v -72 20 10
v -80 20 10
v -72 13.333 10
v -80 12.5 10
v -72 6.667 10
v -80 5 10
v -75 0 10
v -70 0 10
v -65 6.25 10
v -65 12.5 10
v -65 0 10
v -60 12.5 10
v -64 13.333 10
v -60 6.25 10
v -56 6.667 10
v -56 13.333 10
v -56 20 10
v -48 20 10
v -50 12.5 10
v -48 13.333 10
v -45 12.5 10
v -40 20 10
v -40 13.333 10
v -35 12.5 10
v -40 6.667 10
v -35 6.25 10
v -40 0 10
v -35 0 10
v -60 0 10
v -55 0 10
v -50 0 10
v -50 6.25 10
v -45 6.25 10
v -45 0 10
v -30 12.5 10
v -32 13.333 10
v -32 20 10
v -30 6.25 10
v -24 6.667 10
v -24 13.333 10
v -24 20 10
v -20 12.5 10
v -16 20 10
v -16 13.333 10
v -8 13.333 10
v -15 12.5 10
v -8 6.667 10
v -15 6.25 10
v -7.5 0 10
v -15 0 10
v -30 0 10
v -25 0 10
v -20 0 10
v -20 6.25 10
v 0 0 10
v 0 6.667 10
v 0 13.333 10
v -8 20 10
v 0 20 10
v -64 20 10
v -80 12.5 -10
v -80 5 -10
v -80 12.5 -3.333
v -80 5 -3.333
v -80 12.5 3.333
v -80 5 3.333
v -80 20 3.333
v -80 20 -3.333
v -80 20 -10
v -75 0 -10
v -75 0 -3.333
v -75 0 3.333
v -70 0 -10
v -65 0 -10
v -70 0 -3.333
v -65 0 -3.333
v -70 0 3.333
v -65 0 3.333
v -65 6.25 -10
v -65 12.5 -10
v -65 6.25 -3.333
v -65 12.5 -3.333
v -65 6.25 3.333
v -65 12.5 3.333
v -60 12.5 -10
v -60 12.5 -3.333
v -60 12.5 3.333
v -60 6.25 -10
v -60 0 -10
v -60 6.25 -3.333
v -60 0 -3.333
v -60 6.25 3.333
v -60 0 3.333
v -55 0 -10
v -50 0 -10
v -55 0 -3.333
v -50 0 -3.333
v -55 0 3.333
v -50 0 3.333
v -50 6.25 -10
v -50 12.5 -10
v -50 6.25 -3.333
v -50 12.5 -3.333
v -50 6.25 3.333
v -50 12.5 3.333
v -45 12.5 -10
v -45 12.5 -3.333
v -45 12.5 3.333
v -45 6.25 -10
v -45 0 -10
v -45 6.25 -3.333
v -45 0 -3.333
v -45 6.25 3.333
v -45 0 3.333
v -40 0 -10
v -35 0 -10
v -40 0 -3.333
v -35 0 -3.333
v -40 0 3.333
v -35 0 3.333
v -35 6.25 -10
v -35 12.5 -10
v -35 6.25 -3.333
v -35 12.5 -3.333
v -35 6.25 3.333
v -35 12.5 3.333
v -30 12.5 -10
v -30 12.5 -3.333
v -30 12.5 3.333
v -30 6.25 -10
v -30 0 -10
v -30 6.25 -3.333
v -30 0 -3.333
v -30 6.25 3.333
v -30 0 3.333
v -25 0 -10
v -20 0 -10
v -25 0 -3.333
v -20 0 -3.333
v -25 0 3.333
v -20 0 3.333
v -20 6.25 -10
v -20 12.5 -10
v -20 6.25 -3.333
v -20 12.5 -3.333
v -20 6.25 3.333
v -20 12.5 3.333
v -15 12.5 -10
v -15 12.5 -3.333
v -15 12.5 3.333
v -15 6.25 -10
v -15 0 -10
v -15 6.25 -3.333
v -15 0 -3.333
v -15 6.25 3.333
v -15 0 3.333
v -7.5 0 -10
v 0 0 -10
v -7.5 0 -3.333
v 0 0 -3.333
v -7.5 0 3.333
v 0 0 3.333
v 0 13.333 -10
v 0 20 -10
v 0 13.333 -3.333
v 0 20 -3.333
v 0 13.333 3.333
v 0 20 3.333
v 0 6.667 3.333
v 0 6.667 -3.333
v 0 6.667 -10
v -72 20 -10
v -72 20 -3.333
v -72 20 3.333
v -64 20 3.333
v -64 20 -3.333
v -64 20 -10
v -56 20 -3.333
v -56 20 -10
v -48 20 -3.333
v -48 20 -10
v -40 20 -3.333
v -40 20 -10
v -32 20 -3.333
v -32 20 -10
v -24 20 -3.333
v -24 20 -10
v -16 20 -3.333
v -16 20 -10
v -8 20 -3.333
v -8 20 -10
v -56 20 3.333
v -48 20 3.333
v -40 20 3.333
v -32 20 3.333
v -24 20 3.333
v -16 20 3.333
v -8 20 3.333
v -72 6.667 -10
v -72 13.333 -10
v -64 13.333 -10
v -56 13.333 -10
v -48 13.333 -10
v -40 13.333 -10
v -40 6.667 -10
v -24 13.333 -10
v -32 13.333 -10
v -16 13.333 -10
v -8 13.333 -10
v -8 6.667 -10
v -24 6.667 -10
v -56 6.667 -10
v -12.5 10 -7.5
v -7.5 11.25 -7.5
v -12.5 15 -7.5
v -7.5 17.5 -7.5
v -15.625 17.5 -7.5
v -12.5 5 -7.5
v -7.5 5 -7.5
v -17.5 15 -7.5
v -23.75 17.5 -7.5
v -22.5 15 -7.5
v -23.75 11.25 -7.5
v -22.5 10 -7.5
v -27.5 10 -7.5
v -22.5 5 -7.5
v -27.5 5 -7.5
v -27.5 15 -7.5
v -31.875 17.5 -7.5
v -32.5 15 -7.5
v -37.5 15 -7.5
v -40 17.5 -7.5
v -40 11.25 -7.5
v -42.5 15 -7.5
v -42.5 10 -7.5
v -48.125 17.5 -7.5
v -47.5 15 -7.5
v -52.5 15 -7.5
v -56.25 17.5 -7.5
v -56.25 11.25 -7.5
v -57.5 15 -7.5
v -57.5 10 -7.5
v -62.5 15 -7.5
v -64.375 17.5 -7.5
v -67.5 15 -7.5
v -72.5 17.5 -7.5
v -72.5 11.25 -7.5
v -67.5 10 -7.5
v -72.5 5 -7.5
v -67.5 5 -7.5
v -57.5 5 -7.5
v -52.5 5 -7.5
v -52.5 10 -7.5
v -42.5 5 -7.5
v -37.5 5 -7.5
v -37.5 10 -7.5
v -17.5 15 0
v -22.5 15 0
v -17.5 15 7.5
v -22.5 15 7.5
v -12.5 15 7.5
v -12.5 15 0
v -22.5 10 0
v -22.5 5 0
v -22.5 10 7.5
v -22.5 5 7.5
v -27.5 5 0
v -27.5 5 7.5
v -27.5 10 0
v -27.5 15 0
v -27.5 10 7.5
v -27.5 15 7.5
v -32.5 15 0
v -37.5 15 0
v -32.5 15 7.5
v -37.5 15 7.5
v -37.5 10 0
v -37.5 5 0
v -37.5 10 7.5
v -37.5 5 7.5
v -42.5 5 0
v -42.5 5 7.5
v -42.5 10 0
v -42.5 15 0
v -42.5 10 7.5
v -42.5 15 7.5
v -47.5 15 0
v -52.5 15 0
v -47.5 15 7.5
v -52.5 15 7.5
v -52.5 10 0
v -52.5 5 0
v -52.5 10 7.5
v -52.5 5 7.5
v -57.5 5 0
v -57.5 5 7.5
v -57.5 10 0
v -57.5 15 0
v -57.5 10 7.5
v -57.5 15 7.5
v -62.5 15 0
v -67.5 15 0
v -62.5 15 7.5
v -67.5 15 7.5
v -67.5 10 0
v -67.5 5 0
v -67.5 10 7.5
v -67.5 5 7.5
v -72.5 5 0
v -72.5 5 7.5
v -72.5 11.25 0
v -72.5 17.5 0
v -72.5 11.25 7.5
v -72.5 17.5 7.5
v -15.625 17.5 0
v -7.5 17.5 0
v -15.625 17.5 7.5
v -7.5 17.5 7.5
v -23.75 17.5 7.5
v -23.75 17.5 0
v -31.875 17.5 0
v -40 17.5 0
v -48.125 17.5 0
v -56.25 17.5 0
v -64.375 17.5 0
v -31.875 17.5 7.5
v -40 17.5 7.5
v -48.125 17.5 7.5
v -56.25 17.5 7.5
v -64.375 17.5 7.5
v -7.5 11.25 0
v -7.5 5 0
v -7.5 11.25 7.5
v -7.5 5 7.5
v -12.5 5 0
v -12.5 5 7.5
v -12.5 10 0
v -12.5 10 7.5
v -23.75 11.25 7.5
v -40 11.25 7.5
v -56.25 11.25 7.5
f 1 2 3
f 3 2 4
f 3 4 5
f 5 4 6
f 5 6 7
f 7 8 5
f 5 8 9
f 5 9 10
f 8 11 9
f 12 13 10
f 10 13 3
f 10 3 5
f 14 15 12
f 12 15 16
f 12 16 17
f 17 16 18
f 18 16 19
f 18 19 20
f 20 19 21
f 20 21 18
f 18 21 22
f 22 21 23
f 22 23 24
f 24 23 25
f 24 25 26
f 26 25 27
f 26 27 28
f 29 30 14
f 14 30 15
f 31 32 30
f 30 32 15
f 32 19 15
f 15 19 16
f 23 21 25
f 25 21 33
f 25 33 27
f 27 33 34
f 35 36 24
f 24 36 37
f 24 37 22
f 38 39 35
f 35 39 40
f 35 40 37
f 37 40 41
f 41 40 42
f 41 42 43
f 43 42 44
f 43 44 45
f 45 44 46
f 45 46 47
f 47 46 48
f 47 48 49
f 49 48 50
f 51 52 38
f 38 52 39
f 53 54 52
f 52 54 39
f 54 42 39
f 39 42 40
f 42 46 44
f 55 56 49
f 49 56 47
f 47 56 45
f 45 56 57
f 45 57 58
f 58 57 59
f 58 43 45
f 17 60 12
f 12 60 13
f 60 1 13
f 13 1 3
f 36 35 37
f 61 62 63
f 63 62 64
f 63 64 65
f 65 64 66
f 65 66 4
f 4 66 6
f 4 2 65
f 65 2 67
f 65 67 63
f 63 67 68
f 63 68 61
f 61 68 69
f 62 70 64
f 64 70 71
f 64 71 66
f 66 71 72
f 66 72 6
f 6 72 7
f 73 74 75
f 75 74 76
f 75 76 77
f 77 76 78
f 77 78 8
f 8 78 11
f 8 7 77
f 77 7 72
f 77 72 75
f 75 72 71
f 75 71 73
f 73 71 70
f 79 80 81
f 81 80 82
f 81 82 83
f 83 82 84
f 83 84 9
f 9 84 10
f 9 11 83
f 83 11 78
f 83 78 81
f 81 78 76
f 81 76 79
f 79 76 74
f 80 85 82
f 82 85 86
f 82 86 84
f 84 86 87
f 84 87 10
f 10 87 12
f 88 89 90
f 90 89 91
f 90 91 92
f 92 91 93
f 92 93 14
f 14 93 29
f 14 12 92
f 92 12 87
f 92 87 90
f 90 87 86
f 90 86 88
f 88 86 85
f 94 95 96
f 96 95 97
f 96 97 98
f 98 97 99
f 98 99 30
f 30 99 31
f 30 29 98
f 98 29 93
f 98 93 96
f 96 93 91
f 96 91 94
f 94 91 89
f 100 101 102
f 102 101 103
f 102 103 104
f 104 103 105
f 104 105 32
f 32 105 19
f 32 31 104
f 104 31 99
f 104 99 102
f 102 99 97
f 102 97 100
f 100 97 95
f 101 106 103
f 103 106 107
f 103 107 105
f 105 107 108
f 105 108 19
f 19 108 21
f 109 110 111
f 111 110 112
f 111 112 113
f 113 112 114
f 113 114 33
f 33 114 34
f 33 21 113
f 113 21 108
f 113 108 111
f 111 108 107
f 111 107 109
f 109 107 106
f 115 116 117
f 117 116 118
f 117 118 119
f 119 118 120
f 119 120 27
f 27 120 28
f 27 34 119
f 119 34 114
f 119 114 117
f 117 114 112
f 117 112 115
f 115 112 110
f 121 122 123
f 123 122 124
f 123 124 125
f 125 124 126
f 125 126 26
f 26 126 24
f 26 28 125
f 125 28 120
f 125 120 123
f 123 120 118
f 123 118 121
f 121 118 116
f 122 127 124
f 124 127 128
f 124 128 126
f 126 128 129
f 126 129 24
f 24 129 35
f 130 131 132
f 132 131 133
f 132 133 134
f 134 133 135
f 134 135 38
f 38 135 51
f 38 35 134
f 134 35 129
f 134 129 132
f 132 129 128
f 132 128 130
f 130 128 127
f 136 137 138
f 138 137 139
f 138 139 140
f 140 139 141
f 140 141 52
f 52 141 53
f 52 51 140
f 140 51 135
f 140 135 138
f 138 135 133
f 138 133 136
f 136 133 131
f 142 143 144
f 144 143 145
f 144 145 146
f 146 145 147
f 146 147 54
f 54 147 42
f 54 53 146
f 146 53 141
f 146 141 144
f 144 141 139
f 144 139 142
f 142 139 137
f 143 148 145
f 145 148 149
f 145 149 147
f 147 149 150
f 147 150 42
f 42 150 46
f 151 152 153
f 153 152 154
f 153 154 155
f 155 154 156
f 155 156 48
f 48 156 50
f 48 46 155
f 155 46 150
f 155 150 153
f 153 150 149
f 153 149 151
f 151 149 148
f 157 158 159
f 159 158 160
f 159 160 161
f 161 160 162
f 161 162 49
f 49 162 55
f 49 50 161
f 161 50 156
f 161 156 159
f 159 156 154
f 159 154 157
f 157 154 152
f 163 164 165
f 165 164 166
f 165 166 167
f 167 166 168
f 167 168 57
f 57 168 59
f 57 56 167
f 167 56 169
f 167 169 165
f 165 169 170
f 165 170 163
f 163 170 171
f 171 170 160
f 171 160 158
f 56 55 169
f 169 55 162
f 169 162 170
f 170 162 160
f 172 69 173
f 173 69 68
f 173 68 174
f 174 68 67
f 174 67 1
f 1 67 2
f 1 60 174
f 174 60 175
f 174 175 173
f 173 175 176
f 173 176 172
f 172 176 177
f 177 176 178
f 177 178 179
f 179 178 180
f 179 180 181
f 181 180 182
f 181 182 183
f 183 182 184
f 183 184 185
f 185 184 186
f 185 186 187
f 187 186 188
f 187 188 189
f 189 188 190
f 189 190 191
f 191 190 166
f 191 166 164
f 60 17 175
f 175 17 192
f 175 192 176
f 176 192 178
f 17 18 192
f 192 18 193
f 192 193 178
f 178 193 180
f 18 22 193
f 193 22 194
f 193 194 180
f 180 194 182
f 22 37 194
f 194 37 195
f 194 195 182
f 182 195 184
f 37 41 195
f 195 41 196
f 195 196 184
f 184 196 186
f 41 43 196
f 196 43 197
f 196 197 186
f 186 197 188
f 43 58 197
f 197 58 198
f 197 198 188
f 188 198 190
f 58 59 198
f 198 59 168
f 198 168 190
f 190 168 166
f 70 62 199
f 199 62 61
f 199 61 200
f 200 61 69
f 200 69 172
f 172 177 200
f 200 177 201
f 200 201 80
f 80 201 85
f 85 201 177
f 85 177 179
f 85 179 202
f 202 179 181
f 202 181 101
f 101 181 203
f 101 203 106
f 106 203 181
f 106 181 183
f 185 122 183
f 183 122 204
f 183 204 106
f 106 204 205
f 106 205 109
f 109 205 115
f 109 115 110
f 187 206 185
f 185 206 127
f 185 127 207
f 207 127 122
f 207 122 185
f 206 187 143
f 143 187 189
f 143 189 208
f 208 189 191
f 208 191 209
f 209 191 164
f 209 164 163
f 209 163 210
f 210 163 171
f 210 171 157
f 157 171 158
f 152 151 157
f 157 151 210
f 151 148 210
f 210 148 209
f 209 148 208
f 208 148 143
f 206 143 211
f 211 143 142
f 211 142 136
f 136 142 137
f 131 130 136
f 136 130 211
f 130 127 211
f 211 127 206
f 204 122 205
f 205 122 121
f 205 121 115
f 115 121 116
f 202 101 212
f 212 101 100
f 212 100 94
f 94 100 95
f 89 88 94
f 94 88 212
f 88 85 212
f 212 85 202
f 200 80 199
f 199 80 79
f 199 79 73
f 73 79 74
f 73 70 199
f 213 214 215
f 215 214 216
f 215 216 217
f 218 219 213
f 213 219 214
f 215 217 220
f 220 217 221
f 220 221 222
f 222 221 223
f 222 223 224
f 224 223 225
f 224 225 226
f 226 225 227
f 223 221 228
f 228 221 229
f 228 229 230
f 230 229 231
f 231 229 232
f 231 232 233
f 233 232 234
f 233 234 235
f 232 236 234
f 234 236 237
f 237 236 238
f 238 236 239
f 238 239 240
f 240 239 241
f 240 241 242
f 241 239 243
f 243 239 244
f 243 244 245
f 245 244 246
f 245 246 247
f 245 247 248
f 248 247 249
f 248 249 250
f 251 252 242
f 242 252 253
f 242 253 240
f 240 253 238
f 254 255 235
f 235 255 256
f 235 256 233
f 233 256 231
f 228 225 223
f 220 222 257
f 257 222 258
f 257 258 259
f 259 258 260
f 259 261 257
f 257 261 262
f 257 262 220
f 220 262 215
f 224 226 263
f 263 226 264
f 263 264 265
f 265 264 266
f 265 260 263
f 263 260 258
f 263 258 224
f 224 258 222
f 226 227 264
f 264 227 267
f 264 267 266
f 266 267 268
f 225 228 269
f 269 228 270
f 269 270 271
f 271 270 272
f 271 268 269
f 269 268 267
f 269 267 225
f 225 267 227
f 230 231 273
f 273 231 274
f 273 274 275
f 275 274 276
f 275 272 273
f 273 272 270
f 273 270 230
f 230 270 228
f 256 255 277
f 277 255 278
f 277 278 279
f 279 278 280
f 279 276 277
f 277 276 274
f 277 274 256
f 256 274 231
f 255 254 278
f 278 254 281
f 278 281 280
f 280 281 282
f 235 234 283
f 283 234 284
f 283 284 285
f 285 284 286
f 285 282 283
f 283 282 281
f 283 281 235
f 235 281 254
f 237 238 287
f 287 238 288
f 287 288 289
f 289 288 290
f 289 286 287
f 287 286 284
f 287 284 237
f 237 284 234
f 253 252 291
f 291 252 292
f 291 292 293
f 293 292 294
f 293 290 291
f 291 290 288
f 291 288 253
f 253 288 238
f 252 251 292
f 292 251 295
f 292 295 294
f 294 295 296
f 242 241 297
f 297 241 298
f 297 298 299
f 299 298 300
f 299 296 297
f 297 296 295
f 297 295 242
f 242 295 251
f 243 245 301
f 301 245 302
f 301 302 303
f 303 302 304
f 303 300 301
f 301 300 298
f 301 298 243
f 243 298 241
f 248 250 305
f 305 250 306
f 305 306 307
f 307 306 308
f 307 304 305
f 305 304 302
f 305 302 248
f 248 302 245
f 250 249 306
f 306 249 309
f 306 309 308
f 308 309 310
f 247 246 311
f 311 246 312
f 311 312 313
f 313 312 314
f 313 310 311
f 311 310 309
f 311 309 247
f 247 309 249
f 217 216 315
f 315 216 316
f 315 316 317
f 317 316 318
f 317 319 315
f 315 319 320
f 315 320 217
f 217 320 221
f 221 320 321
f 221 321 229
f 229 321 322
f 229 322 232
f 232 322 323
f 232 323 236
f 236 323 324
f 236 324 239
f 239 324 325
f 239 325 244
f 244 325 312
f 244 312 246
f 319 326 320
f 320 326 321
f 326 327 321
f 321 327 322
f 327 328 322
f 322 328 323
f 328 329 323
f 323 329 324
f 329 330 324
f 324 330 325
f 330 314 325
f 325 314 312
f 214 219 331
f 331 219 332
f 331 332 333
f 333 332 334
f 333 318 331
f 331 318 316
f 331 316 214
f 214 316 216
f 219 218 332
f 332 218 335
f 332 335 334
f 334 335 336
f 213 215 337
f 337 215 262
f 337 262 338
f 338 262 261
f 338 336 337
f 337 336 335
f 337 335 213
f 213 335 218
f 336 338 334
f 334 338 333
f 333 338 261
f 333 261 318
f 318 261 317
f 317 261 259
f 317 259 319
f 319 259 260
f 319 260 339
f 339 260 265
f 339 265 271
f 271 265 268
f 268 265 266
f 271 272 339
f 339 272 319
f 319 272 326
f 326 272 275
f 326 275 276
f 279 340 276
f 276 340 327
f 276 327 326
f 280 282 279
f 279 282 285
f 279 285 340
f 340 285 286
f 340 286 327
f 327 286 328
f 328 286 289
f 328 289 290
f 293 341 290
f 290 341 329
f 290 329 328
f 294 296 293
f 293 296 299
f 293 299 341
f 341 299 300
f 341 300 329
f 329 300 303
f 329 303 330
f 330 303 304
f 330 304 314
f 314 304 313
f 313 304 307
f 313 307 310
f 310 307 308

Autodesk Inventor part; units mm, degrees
ref_plane "YZ Plane" through (0, 0, 0) normal (1, 0, 0) x (0, 1, 0)
ref_plane "XZ Plane" through (0, 0, 0) normal (0, 1, 0) x (-1, 0, 0)
ref_plane "XY Plane" through (0, 0, 0) normal (0, 0, 1) x (1, 0, 0)
sketch "スケッチ1" plane through (0, 0, 0) normal (0, 0, 1) x (1, 0, 0)
  line L0 (0, 0) -> (-15, 0)
  line L1 (-15, 0) -> (-15, 20)
  line L2 (-15, 20) -> (0, 20)
  line L3 (0, 20) -> (0, 0)
  line L4 (0, 0) -> (0, 43.6966) construction
  line L5 (-15, 12.5) -> (-20, 12.5)
  line L6 (-20, 12.5) -> (-20, 0)
  line L7 (-30, 0) -> (-30, 12.5)
  line L8 (-30, 0) -> (-20, 0)
  line L9 (23.8812, 0) -> (-169.724, 0) construction
  line L10 (-45, 0) -> (-45, 12.5)
  line L11 (-45, 0) -> (-35, 0)
  line L12 (-35, 12.5) -> (-35, 0)
  line L13 (-30, 12.5) -> (-35, 12.5)
  line L14 (-60, 0) -> (-60, 12.5)
  line L15 (-60, 0) -> (-50, 0)
  line L16 (-50, 12.5) -> (-50, 0)
  line L17 (-45, 12.5) -> (-50, 12.5)
  line L18 (-75, 0) -> (-75, 12.5)
  line L19 (-75, 0) -> (-65, 0)
  line L20 (-65, 12.5) -> (-65, 0)
  line L21 (-60, 12.5) -> (-65, 12.5)
  line L22 (-75, 0) -> (-80, 0)
  line L23 (-80, 0) -> (-80, 20)
  line L24 (-80, 20) -> (-75, 20)
  line L25 (-75, 20) -> (-75, 0)
  line L26 (-75, 20) -> (-15, 20)
  line L27 (-75, 0) -> (-80, 5)
  line L28 (-75, 0) -> (-67.9289, 0) construction
  line L29 (0, 5) -> (-5, 0)
  point P0 (-5, 0)
  dimension "d1" = 15
  dimension "d2" = 20
  dimension "d3" = 5
  dimension "d4" = 10
  dimension "d5" = 7.5
  dimension "d8" = 15
  dimension "d13" = 5
  dimension "d14" = 135
  dimension "d15" = 5
  dimension "d16" = 135
extrude "押し出し1" add sketch "スケッチ1" along normal blind 10 contours L0 L29 L3 | L0 L1 L2 L3 L29 | L5 L6 L8 L7 L13 L12 L11 L10 L17 L16 L15 L14 L21 L20 L19 L18 L25 L26 L1 | L25 L18 L27 L23 L24
sketch "スケッチ2" plane through (0, 0, 0) normal (0, 0, -1) x (-1, 0, 0)
  line L0 (80, 20) -> (80, 5) projected
  line L1 (0, 20) -> (80, 20) projected
  line L2 (0, 0) -> (0, 20) projected
  line L3 (15, 0) -> (0, 0) projected
  line L4 (15, 12.5) -> (15, 0) projected
  line L5 (20, 12.5) -> (15, 12.5) projected
  line L6 (20, 0) -> (20, 12.5) projected
  line L7 (30, 0) -> (20, 0) projected
  line L8 (30, 12.5) -> (30, 0) projected
  line L9 (35, 12.5) -> (30, 12.5) projected
  line L10 (35, 0) -> (35, 12.5) projected
  line L11 (45, 0) -> (35, 0) projected
  line L12 (45, 12.5) -> (45, 0) projected
  line L13 (50, 12.5) -> (45, 12.5) projected
  line L14 (50, 0) -> (50, 12.5) projected
  line L15 (60, 0) -> (50, 0) projected
  line L16 (60, 12.5) -> (60, 0) projected
  line L17 (65, 12.5) -> (60, 12.5) projected
  line L18 (65, 0) -> (65, 12.5) projected
  line L19 (75, 0) -> (65, 0) projected
  line L20 (80, 5) -> (75, 0) projected
  line L21 (40, 31.6917) -> (40, -9.5966) construction
  line L22 (42.5, 5) -> (37.5, 5)
  line L23 (37.5, 5) -> (37.5, 17.5)
  line L24 (37.5, 17.5) -> (42.5, 17.5)
  line L25 (42.5, 17.5) -> (42.5, 5)
  line L26 (42.5, 5) -> (37.5, 17.5) construction
  line L27 (37.5, 5) -> (42.5, 17.5) construction
  line L28 (-3.4293, 0) -> (98.1355, 0) construction
  line L29 (52.5, 5) -> (52.5, 17.5)
  line L30 (57.5, 5) -> (52.5, 5)
  line L31 (57.5, 17.5) -> (57.5, 5)
  line L32 (67.5, 5) -> (67.5, 17.5)
  line L33 (72.5, 5) -> (67.5, 5)
  line L34 (72.5, 17.5) -> (72.5, 5)
  line L35 (22.5, 5) -> (22.5, 17.5)
  line L36 (27.5, 5) -> (22.5, 5)
  line L37 (27.5, 17.5) -> (27.5, 5)
  line L38 (37.5, 5) -> (37.5, 17.5)
  line L39 (42.5, 5) -> (37.5, 5)
  line L40 (42.5, 17.5) -> (42.5, 5)
  line L41 (52.5, 5) -> (52.5, 17.5)
  line L42 (57.5, 5) -> (52.5, 5)
  line L43 (57.5, 17.5) -> (57.5, 5)
  line L44 (7.5, 5) -> (7.5, 17.5)
  line L45 (12.5, 5) -> (7.5, 5)
  line L46 (12.5, 17.5) -> (12.5, 5)
  line L47 (22.5, 5) -> (22.5, 17.5)
  line L48 (27.5, 5) -> (22.5, 5)
  line L49 (27.5, 17.5) -> (27.5, 5)
  line L50 (37.5, 5) -> (37.5, 17.5)
  line L51 (42.5, 5) -> (37.5, 5)
  line L52 (42.5, 17.5) -> (42.5, 5)
  line L53 (72.5, 17.5) -> (7.5, 17.5)
  line L54 (7.5, 15) -> (72.5, 15)
  point P0 (40, 11.25)
  point P1 (12.5, 15)
  point P2 (22.5, 15)
  point P3 (27.5, 15)
  point P4 (37.5, 15)
  point P5 (42.5, 15)
  point P6 (52.5, 15)
  point P7 (57.5, 15)
  point P8 (67.5, 15)
  dimension "d19" = 5
  dimension "d20" = 5
  dimension "d21" = 12.5
  dimension "d22" = 5
  dimension "d25" = 15
  dimension "d28" = 15
  dimension "d31" = 2.5
extrude "押し出し2" cut sketch "スケッチ2" against normal blind 7.5 contours L22 L23 L54 L25 | L54 L23 L24 L25 | L25 L53 L29 L54 | L54 L37 L53 L23 | L54 L31 L30 L29 | L29 L53 L31 L54 | L54 L35 L53 L37 | L37 L36 L35 L54 | L31 L53 L32 L54 | L54 L46 L53 L35 | L54 L34 L33 L32 | L32 L53 L34 L54 | L54 L44 L53 L46 | L46 L45 L44 L54
mirror "ミラー2" about plane through (-40, 10, 0) normal (0, 0, -1) of "押し出し1", "押し出し2"
